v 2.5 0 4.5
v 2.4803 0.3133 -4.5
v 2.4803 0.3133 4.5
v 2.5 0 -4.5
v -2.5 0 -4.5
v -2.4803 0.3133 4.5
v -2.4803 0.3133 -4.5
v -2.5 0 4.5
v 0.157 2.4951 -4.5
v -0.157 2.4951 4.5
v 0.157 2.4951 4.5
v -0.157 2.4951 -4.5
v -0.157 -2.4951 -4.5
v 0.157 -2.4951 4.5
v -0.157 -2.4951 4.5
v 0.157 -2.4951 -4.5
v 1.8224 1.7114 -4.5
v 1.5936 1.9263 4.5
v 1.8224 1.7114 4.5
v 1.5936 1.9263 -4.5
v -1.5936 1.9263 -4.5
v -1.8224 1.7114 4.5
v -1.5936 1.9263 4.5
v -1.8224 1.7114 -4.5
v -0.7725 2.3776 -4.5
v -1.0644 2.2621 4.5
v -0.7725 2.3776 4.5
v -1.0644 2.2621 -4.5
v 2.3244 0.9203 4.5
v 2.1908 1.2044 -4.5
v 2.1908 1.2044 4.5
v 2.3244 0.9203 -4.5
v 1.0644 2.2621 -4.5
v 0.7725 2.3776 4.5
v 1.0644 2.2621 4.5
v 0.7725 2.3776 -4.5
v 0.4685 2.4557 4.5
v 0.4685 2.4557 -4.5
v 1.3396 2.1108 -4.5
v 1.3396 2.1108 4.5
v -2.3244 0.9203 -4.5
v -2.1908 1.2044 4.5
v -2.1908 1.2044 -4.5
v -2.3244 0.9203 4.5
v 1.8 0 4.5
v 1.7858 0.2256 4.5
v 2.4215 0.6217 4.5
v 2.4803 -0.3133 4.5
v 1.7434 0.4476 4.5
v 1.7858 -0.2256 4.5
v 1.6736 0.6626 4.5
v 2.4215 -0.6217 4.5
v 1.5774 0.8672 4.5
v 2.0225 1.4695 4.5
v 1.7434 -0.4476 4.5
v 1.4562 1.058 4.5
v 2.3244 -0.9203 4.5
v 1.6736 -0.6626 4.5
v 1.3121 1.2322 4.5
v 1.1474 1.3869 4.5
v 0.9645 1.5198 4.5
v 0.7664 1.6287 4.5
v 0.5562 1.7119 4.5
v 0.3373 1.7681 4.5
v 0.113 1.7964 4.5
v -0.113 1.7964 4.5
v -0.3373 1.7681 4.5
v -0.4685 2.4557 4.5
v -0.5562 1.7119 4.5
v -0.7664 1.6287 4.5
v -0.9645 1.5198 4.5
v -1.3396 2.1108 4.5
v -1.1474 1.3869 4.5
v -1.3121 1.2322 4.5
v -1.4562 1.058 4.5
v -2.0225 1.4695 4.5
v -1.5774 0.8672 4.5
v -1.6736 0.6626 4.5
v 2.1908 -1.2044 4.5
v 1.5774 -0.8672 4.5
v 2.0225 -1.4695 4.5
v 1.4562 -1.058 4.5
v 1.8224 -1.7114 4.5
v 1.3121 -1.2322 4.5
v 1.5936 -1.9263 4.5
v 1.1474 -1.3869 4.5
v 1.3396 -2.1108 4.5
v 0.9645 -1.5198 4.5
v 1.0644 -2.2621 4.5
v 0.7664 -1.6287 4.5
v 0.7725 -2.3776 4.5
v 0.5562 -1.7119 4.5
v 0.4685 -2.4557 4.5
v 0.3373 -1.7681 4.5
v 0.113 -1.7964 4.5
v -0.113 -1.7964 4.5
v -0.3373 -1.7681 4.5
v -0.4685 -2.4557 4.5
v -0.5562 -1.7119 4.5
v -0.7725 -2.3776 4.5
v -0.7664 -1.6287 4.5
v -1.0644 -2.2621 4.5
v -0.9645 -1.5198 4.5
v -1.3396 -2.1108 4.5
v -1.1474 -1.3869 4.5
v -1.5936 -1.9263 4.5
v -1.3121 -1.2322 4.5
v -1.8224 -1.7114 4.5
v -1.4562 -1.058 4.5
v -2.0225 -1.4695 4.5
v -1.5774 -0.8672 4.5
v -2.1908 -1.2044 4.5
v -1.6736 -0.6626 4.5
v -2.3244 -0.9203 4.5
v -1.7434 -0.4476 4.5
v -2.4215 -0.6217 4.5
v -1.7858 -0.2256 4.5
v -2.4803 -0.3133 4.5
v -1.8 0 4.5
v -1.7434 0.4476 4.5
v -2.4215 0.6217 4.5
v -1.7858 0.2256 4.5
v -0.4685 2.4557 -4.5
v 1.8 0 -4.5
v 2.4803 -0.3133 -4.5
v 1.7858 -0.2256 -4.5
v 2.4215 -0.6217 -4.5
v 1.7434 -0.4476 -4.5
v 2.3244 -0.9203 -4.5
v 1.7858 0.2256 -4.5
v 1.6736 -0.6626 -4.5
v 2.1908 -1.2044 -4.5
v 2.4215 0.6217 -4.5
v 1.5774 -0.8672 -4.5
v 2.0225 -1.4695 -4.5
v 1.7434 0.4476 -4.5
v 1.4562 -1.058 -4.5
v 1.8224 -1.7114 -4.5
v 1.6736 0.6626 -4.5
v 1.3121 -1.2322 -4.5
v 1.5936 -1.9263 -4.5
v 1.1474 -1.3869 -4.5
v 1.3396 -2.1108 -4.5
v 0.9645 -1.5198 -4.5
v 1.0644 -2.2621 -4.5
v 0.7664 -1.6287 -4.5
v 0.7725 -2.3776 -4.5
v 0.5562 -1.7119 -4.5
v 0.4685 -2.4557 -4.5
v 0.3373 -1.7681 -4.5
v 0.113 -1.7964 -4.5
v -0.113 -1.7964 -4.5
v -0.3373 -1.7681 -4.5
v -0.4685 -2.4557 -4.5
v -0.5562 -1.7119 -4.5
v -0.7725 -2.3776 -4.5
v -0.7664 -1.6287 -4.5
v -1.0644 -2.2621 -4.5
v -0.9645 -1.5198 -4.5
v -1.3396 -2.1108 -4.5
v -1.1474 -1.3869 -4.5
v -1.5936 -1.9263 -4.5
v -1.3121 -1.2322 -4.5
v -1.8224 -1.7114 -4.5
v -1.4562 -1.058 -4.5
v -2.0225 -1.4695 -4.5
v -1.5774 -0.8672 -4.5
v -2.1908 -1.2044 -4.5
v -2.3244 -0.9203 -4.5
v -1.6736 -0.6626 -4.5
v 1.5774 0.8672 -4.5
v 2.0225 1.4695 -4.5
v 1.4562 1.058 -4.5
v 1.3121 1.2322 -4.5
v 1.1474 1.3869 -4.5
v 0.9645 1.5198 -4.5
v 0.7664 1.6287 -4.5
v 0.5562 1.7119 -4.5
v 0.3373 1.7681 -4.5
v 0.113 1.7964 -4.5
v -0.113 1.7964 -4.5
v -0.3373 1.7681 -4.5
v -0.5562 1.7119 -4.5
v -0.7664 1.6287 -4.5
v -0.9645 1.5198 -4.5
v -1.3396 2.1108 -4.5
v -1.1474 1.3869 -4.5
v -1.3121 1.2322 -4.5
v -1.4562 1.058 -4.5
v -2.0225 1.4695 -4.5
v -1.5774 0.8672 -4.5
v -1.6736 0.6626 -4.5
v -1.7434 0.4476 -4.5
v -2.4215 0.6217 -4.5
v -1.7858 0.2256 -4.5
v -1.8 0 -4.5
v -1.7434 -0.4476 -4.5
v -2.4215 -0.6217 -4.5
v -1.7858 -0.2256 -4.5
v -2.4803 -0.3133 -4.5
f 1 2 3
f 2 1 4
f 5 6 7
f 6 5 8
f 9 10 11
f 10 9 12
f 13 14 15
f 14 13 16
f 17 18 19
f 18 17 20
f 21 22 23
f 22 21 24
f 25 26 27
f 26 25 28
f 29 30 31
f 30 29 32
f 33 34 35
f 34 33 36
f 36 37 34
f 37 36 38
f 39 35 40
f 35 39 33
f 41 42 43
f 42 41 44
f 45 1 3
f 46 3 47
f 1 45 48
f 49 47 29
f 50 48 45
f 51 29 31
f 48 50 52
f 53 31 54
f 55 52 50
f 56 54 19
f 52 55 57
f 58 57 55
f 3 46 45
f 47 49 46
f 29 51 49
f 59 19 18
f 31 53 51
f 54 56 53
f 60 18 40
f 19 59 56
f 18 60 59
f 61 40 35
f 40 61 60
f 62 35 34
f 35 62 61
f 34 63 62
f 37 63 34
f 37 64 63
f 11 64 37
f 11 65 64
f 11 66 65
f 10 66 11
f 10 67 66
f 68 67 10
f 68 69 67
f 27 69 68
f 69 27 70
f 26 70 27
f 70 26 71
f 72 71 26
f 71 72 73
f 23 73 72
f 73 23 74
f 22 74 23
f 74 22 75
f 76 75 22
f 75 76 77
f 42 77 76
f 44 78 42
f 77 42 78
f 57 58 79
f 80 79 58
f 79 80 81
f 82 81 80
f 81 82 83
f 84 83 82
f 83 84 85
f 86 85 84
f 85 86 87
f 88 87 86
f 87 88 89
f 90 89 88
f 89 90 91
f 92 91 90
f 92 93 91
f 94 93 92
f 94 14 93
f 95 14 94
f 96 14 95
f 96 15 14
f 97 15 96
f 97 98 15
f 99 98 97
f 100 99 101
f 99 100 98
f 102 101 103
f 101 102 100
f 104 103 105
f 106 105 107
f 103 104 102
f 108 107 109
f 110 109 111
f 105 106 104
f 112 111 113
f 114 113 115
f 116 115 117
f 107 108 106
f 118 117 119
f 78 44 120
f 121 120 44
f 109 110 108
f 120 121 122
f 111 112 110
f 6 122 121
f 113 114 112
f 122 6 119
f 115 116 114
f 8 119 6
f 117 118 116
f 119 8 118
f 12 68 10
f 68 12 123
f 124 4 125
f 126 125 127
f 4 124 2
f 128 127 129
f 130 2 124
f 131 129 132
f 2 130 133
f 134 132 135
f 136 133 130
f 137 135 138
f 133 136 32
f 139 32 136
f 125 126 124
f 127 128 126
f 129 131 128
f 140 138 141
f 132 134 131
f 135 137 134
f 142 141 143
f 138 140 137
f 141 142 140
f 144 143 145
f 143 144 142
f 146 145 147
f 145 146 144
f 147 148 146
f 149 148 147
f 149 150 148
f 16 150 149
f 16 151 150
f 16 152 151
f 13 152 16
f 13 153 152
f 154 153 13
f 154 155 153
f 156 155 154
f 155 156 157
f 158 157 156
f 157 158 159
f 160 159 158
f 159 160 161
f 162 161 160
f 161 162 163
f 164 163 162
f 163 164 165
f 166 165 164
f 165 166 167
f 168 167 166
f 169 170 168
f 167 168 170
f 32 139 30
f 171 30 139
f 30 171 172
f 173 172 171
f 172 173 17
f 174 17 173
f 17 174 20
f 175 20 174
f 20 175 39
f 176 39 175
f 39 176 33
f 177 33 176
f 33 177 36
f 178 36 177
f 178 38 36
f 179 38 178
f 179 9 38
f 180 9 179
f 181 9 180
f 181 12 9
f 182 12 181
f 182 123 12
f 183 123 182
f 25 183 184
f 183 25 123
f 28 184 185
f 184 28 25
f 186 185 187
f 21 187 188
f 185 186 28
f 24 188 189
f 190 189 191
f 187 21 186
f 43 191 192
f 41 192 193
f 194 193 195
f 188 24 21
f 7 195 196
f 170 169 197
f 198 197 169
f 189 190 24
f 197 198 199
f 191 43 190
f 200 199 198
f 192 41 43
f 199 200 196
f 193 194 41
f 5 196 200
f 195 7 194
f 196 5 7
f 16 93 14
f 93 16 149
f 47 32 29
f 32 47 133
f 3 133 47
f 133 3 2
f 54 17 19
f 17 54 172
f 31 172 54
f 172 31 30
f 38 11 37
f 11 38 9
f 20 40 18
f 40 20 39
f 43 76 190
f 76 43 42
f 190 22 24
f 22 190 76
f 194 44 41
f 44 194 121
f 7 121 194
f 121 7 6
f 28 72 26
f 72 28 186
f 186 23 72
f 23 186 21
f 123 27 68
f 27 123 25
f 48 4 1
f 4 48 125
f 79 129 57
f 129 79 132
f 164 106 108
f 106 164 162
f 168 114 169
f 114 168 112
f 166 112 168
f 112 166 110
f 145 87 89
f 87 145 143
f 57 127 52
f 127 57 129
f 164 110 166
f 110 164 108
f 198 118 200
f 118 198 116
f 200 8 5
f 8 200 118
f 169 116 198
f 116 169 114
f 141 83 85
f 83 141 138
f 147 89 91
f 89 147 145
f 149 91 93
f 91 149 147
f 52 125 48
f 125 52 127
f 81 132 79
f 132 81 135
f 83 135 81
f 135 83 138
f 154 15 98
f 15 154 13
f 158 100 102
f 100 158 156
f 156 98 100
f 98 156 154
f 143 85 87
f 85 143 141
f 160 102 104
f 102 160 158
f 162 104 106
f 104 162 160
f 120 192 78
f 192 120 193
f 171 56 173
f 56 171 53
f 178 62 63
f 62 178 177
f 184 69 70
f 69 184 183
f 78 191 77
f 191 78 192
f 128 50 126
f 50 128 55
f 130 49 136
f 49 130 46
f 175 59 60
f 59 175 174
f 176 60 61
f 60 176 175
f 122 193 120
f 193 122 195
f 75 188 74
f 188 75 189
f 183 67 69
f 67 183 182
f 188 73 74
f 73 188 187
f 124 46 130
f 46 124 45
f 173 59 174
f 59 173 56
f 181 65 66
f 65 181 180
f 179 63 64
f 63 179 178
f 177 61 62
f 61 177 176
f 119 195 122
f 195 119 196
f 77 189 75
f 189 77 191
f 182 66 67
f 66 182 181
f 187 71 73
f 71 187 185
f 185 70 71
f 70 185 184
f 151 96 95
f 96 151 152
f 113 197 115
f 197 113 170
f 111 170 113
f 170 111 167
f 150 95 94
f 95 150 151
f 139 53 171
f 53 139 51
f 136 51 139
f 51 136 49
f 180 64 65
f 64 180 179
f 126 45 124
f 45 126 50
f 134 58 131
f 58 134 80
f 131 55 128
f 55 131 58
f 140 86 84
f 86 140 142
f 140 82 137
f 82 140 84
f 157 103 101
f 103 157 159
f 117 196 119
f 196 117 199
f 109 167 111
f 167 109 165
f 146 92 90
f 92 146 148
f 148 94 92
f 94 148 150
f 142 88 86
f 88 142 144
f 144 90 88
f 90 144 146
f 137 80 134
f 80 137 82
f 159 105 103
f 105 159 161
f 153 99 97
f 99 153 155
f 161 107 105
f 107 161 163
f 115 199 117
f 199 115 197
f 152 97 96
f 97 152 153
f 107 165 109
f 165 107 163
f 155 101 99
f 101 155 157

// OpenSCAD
$fn = 50;


difference() {
	union() {
		translate(v = [0, 0, -4.5000000000]) {
			cylinder(h = 9, r = 2.5000000000);
		}
	}
	union() {
		translate(v = [0, 0, -100.0000000000]) {
			cylinder(h = 200, r = 1.8000000000);
		}
	}
}
